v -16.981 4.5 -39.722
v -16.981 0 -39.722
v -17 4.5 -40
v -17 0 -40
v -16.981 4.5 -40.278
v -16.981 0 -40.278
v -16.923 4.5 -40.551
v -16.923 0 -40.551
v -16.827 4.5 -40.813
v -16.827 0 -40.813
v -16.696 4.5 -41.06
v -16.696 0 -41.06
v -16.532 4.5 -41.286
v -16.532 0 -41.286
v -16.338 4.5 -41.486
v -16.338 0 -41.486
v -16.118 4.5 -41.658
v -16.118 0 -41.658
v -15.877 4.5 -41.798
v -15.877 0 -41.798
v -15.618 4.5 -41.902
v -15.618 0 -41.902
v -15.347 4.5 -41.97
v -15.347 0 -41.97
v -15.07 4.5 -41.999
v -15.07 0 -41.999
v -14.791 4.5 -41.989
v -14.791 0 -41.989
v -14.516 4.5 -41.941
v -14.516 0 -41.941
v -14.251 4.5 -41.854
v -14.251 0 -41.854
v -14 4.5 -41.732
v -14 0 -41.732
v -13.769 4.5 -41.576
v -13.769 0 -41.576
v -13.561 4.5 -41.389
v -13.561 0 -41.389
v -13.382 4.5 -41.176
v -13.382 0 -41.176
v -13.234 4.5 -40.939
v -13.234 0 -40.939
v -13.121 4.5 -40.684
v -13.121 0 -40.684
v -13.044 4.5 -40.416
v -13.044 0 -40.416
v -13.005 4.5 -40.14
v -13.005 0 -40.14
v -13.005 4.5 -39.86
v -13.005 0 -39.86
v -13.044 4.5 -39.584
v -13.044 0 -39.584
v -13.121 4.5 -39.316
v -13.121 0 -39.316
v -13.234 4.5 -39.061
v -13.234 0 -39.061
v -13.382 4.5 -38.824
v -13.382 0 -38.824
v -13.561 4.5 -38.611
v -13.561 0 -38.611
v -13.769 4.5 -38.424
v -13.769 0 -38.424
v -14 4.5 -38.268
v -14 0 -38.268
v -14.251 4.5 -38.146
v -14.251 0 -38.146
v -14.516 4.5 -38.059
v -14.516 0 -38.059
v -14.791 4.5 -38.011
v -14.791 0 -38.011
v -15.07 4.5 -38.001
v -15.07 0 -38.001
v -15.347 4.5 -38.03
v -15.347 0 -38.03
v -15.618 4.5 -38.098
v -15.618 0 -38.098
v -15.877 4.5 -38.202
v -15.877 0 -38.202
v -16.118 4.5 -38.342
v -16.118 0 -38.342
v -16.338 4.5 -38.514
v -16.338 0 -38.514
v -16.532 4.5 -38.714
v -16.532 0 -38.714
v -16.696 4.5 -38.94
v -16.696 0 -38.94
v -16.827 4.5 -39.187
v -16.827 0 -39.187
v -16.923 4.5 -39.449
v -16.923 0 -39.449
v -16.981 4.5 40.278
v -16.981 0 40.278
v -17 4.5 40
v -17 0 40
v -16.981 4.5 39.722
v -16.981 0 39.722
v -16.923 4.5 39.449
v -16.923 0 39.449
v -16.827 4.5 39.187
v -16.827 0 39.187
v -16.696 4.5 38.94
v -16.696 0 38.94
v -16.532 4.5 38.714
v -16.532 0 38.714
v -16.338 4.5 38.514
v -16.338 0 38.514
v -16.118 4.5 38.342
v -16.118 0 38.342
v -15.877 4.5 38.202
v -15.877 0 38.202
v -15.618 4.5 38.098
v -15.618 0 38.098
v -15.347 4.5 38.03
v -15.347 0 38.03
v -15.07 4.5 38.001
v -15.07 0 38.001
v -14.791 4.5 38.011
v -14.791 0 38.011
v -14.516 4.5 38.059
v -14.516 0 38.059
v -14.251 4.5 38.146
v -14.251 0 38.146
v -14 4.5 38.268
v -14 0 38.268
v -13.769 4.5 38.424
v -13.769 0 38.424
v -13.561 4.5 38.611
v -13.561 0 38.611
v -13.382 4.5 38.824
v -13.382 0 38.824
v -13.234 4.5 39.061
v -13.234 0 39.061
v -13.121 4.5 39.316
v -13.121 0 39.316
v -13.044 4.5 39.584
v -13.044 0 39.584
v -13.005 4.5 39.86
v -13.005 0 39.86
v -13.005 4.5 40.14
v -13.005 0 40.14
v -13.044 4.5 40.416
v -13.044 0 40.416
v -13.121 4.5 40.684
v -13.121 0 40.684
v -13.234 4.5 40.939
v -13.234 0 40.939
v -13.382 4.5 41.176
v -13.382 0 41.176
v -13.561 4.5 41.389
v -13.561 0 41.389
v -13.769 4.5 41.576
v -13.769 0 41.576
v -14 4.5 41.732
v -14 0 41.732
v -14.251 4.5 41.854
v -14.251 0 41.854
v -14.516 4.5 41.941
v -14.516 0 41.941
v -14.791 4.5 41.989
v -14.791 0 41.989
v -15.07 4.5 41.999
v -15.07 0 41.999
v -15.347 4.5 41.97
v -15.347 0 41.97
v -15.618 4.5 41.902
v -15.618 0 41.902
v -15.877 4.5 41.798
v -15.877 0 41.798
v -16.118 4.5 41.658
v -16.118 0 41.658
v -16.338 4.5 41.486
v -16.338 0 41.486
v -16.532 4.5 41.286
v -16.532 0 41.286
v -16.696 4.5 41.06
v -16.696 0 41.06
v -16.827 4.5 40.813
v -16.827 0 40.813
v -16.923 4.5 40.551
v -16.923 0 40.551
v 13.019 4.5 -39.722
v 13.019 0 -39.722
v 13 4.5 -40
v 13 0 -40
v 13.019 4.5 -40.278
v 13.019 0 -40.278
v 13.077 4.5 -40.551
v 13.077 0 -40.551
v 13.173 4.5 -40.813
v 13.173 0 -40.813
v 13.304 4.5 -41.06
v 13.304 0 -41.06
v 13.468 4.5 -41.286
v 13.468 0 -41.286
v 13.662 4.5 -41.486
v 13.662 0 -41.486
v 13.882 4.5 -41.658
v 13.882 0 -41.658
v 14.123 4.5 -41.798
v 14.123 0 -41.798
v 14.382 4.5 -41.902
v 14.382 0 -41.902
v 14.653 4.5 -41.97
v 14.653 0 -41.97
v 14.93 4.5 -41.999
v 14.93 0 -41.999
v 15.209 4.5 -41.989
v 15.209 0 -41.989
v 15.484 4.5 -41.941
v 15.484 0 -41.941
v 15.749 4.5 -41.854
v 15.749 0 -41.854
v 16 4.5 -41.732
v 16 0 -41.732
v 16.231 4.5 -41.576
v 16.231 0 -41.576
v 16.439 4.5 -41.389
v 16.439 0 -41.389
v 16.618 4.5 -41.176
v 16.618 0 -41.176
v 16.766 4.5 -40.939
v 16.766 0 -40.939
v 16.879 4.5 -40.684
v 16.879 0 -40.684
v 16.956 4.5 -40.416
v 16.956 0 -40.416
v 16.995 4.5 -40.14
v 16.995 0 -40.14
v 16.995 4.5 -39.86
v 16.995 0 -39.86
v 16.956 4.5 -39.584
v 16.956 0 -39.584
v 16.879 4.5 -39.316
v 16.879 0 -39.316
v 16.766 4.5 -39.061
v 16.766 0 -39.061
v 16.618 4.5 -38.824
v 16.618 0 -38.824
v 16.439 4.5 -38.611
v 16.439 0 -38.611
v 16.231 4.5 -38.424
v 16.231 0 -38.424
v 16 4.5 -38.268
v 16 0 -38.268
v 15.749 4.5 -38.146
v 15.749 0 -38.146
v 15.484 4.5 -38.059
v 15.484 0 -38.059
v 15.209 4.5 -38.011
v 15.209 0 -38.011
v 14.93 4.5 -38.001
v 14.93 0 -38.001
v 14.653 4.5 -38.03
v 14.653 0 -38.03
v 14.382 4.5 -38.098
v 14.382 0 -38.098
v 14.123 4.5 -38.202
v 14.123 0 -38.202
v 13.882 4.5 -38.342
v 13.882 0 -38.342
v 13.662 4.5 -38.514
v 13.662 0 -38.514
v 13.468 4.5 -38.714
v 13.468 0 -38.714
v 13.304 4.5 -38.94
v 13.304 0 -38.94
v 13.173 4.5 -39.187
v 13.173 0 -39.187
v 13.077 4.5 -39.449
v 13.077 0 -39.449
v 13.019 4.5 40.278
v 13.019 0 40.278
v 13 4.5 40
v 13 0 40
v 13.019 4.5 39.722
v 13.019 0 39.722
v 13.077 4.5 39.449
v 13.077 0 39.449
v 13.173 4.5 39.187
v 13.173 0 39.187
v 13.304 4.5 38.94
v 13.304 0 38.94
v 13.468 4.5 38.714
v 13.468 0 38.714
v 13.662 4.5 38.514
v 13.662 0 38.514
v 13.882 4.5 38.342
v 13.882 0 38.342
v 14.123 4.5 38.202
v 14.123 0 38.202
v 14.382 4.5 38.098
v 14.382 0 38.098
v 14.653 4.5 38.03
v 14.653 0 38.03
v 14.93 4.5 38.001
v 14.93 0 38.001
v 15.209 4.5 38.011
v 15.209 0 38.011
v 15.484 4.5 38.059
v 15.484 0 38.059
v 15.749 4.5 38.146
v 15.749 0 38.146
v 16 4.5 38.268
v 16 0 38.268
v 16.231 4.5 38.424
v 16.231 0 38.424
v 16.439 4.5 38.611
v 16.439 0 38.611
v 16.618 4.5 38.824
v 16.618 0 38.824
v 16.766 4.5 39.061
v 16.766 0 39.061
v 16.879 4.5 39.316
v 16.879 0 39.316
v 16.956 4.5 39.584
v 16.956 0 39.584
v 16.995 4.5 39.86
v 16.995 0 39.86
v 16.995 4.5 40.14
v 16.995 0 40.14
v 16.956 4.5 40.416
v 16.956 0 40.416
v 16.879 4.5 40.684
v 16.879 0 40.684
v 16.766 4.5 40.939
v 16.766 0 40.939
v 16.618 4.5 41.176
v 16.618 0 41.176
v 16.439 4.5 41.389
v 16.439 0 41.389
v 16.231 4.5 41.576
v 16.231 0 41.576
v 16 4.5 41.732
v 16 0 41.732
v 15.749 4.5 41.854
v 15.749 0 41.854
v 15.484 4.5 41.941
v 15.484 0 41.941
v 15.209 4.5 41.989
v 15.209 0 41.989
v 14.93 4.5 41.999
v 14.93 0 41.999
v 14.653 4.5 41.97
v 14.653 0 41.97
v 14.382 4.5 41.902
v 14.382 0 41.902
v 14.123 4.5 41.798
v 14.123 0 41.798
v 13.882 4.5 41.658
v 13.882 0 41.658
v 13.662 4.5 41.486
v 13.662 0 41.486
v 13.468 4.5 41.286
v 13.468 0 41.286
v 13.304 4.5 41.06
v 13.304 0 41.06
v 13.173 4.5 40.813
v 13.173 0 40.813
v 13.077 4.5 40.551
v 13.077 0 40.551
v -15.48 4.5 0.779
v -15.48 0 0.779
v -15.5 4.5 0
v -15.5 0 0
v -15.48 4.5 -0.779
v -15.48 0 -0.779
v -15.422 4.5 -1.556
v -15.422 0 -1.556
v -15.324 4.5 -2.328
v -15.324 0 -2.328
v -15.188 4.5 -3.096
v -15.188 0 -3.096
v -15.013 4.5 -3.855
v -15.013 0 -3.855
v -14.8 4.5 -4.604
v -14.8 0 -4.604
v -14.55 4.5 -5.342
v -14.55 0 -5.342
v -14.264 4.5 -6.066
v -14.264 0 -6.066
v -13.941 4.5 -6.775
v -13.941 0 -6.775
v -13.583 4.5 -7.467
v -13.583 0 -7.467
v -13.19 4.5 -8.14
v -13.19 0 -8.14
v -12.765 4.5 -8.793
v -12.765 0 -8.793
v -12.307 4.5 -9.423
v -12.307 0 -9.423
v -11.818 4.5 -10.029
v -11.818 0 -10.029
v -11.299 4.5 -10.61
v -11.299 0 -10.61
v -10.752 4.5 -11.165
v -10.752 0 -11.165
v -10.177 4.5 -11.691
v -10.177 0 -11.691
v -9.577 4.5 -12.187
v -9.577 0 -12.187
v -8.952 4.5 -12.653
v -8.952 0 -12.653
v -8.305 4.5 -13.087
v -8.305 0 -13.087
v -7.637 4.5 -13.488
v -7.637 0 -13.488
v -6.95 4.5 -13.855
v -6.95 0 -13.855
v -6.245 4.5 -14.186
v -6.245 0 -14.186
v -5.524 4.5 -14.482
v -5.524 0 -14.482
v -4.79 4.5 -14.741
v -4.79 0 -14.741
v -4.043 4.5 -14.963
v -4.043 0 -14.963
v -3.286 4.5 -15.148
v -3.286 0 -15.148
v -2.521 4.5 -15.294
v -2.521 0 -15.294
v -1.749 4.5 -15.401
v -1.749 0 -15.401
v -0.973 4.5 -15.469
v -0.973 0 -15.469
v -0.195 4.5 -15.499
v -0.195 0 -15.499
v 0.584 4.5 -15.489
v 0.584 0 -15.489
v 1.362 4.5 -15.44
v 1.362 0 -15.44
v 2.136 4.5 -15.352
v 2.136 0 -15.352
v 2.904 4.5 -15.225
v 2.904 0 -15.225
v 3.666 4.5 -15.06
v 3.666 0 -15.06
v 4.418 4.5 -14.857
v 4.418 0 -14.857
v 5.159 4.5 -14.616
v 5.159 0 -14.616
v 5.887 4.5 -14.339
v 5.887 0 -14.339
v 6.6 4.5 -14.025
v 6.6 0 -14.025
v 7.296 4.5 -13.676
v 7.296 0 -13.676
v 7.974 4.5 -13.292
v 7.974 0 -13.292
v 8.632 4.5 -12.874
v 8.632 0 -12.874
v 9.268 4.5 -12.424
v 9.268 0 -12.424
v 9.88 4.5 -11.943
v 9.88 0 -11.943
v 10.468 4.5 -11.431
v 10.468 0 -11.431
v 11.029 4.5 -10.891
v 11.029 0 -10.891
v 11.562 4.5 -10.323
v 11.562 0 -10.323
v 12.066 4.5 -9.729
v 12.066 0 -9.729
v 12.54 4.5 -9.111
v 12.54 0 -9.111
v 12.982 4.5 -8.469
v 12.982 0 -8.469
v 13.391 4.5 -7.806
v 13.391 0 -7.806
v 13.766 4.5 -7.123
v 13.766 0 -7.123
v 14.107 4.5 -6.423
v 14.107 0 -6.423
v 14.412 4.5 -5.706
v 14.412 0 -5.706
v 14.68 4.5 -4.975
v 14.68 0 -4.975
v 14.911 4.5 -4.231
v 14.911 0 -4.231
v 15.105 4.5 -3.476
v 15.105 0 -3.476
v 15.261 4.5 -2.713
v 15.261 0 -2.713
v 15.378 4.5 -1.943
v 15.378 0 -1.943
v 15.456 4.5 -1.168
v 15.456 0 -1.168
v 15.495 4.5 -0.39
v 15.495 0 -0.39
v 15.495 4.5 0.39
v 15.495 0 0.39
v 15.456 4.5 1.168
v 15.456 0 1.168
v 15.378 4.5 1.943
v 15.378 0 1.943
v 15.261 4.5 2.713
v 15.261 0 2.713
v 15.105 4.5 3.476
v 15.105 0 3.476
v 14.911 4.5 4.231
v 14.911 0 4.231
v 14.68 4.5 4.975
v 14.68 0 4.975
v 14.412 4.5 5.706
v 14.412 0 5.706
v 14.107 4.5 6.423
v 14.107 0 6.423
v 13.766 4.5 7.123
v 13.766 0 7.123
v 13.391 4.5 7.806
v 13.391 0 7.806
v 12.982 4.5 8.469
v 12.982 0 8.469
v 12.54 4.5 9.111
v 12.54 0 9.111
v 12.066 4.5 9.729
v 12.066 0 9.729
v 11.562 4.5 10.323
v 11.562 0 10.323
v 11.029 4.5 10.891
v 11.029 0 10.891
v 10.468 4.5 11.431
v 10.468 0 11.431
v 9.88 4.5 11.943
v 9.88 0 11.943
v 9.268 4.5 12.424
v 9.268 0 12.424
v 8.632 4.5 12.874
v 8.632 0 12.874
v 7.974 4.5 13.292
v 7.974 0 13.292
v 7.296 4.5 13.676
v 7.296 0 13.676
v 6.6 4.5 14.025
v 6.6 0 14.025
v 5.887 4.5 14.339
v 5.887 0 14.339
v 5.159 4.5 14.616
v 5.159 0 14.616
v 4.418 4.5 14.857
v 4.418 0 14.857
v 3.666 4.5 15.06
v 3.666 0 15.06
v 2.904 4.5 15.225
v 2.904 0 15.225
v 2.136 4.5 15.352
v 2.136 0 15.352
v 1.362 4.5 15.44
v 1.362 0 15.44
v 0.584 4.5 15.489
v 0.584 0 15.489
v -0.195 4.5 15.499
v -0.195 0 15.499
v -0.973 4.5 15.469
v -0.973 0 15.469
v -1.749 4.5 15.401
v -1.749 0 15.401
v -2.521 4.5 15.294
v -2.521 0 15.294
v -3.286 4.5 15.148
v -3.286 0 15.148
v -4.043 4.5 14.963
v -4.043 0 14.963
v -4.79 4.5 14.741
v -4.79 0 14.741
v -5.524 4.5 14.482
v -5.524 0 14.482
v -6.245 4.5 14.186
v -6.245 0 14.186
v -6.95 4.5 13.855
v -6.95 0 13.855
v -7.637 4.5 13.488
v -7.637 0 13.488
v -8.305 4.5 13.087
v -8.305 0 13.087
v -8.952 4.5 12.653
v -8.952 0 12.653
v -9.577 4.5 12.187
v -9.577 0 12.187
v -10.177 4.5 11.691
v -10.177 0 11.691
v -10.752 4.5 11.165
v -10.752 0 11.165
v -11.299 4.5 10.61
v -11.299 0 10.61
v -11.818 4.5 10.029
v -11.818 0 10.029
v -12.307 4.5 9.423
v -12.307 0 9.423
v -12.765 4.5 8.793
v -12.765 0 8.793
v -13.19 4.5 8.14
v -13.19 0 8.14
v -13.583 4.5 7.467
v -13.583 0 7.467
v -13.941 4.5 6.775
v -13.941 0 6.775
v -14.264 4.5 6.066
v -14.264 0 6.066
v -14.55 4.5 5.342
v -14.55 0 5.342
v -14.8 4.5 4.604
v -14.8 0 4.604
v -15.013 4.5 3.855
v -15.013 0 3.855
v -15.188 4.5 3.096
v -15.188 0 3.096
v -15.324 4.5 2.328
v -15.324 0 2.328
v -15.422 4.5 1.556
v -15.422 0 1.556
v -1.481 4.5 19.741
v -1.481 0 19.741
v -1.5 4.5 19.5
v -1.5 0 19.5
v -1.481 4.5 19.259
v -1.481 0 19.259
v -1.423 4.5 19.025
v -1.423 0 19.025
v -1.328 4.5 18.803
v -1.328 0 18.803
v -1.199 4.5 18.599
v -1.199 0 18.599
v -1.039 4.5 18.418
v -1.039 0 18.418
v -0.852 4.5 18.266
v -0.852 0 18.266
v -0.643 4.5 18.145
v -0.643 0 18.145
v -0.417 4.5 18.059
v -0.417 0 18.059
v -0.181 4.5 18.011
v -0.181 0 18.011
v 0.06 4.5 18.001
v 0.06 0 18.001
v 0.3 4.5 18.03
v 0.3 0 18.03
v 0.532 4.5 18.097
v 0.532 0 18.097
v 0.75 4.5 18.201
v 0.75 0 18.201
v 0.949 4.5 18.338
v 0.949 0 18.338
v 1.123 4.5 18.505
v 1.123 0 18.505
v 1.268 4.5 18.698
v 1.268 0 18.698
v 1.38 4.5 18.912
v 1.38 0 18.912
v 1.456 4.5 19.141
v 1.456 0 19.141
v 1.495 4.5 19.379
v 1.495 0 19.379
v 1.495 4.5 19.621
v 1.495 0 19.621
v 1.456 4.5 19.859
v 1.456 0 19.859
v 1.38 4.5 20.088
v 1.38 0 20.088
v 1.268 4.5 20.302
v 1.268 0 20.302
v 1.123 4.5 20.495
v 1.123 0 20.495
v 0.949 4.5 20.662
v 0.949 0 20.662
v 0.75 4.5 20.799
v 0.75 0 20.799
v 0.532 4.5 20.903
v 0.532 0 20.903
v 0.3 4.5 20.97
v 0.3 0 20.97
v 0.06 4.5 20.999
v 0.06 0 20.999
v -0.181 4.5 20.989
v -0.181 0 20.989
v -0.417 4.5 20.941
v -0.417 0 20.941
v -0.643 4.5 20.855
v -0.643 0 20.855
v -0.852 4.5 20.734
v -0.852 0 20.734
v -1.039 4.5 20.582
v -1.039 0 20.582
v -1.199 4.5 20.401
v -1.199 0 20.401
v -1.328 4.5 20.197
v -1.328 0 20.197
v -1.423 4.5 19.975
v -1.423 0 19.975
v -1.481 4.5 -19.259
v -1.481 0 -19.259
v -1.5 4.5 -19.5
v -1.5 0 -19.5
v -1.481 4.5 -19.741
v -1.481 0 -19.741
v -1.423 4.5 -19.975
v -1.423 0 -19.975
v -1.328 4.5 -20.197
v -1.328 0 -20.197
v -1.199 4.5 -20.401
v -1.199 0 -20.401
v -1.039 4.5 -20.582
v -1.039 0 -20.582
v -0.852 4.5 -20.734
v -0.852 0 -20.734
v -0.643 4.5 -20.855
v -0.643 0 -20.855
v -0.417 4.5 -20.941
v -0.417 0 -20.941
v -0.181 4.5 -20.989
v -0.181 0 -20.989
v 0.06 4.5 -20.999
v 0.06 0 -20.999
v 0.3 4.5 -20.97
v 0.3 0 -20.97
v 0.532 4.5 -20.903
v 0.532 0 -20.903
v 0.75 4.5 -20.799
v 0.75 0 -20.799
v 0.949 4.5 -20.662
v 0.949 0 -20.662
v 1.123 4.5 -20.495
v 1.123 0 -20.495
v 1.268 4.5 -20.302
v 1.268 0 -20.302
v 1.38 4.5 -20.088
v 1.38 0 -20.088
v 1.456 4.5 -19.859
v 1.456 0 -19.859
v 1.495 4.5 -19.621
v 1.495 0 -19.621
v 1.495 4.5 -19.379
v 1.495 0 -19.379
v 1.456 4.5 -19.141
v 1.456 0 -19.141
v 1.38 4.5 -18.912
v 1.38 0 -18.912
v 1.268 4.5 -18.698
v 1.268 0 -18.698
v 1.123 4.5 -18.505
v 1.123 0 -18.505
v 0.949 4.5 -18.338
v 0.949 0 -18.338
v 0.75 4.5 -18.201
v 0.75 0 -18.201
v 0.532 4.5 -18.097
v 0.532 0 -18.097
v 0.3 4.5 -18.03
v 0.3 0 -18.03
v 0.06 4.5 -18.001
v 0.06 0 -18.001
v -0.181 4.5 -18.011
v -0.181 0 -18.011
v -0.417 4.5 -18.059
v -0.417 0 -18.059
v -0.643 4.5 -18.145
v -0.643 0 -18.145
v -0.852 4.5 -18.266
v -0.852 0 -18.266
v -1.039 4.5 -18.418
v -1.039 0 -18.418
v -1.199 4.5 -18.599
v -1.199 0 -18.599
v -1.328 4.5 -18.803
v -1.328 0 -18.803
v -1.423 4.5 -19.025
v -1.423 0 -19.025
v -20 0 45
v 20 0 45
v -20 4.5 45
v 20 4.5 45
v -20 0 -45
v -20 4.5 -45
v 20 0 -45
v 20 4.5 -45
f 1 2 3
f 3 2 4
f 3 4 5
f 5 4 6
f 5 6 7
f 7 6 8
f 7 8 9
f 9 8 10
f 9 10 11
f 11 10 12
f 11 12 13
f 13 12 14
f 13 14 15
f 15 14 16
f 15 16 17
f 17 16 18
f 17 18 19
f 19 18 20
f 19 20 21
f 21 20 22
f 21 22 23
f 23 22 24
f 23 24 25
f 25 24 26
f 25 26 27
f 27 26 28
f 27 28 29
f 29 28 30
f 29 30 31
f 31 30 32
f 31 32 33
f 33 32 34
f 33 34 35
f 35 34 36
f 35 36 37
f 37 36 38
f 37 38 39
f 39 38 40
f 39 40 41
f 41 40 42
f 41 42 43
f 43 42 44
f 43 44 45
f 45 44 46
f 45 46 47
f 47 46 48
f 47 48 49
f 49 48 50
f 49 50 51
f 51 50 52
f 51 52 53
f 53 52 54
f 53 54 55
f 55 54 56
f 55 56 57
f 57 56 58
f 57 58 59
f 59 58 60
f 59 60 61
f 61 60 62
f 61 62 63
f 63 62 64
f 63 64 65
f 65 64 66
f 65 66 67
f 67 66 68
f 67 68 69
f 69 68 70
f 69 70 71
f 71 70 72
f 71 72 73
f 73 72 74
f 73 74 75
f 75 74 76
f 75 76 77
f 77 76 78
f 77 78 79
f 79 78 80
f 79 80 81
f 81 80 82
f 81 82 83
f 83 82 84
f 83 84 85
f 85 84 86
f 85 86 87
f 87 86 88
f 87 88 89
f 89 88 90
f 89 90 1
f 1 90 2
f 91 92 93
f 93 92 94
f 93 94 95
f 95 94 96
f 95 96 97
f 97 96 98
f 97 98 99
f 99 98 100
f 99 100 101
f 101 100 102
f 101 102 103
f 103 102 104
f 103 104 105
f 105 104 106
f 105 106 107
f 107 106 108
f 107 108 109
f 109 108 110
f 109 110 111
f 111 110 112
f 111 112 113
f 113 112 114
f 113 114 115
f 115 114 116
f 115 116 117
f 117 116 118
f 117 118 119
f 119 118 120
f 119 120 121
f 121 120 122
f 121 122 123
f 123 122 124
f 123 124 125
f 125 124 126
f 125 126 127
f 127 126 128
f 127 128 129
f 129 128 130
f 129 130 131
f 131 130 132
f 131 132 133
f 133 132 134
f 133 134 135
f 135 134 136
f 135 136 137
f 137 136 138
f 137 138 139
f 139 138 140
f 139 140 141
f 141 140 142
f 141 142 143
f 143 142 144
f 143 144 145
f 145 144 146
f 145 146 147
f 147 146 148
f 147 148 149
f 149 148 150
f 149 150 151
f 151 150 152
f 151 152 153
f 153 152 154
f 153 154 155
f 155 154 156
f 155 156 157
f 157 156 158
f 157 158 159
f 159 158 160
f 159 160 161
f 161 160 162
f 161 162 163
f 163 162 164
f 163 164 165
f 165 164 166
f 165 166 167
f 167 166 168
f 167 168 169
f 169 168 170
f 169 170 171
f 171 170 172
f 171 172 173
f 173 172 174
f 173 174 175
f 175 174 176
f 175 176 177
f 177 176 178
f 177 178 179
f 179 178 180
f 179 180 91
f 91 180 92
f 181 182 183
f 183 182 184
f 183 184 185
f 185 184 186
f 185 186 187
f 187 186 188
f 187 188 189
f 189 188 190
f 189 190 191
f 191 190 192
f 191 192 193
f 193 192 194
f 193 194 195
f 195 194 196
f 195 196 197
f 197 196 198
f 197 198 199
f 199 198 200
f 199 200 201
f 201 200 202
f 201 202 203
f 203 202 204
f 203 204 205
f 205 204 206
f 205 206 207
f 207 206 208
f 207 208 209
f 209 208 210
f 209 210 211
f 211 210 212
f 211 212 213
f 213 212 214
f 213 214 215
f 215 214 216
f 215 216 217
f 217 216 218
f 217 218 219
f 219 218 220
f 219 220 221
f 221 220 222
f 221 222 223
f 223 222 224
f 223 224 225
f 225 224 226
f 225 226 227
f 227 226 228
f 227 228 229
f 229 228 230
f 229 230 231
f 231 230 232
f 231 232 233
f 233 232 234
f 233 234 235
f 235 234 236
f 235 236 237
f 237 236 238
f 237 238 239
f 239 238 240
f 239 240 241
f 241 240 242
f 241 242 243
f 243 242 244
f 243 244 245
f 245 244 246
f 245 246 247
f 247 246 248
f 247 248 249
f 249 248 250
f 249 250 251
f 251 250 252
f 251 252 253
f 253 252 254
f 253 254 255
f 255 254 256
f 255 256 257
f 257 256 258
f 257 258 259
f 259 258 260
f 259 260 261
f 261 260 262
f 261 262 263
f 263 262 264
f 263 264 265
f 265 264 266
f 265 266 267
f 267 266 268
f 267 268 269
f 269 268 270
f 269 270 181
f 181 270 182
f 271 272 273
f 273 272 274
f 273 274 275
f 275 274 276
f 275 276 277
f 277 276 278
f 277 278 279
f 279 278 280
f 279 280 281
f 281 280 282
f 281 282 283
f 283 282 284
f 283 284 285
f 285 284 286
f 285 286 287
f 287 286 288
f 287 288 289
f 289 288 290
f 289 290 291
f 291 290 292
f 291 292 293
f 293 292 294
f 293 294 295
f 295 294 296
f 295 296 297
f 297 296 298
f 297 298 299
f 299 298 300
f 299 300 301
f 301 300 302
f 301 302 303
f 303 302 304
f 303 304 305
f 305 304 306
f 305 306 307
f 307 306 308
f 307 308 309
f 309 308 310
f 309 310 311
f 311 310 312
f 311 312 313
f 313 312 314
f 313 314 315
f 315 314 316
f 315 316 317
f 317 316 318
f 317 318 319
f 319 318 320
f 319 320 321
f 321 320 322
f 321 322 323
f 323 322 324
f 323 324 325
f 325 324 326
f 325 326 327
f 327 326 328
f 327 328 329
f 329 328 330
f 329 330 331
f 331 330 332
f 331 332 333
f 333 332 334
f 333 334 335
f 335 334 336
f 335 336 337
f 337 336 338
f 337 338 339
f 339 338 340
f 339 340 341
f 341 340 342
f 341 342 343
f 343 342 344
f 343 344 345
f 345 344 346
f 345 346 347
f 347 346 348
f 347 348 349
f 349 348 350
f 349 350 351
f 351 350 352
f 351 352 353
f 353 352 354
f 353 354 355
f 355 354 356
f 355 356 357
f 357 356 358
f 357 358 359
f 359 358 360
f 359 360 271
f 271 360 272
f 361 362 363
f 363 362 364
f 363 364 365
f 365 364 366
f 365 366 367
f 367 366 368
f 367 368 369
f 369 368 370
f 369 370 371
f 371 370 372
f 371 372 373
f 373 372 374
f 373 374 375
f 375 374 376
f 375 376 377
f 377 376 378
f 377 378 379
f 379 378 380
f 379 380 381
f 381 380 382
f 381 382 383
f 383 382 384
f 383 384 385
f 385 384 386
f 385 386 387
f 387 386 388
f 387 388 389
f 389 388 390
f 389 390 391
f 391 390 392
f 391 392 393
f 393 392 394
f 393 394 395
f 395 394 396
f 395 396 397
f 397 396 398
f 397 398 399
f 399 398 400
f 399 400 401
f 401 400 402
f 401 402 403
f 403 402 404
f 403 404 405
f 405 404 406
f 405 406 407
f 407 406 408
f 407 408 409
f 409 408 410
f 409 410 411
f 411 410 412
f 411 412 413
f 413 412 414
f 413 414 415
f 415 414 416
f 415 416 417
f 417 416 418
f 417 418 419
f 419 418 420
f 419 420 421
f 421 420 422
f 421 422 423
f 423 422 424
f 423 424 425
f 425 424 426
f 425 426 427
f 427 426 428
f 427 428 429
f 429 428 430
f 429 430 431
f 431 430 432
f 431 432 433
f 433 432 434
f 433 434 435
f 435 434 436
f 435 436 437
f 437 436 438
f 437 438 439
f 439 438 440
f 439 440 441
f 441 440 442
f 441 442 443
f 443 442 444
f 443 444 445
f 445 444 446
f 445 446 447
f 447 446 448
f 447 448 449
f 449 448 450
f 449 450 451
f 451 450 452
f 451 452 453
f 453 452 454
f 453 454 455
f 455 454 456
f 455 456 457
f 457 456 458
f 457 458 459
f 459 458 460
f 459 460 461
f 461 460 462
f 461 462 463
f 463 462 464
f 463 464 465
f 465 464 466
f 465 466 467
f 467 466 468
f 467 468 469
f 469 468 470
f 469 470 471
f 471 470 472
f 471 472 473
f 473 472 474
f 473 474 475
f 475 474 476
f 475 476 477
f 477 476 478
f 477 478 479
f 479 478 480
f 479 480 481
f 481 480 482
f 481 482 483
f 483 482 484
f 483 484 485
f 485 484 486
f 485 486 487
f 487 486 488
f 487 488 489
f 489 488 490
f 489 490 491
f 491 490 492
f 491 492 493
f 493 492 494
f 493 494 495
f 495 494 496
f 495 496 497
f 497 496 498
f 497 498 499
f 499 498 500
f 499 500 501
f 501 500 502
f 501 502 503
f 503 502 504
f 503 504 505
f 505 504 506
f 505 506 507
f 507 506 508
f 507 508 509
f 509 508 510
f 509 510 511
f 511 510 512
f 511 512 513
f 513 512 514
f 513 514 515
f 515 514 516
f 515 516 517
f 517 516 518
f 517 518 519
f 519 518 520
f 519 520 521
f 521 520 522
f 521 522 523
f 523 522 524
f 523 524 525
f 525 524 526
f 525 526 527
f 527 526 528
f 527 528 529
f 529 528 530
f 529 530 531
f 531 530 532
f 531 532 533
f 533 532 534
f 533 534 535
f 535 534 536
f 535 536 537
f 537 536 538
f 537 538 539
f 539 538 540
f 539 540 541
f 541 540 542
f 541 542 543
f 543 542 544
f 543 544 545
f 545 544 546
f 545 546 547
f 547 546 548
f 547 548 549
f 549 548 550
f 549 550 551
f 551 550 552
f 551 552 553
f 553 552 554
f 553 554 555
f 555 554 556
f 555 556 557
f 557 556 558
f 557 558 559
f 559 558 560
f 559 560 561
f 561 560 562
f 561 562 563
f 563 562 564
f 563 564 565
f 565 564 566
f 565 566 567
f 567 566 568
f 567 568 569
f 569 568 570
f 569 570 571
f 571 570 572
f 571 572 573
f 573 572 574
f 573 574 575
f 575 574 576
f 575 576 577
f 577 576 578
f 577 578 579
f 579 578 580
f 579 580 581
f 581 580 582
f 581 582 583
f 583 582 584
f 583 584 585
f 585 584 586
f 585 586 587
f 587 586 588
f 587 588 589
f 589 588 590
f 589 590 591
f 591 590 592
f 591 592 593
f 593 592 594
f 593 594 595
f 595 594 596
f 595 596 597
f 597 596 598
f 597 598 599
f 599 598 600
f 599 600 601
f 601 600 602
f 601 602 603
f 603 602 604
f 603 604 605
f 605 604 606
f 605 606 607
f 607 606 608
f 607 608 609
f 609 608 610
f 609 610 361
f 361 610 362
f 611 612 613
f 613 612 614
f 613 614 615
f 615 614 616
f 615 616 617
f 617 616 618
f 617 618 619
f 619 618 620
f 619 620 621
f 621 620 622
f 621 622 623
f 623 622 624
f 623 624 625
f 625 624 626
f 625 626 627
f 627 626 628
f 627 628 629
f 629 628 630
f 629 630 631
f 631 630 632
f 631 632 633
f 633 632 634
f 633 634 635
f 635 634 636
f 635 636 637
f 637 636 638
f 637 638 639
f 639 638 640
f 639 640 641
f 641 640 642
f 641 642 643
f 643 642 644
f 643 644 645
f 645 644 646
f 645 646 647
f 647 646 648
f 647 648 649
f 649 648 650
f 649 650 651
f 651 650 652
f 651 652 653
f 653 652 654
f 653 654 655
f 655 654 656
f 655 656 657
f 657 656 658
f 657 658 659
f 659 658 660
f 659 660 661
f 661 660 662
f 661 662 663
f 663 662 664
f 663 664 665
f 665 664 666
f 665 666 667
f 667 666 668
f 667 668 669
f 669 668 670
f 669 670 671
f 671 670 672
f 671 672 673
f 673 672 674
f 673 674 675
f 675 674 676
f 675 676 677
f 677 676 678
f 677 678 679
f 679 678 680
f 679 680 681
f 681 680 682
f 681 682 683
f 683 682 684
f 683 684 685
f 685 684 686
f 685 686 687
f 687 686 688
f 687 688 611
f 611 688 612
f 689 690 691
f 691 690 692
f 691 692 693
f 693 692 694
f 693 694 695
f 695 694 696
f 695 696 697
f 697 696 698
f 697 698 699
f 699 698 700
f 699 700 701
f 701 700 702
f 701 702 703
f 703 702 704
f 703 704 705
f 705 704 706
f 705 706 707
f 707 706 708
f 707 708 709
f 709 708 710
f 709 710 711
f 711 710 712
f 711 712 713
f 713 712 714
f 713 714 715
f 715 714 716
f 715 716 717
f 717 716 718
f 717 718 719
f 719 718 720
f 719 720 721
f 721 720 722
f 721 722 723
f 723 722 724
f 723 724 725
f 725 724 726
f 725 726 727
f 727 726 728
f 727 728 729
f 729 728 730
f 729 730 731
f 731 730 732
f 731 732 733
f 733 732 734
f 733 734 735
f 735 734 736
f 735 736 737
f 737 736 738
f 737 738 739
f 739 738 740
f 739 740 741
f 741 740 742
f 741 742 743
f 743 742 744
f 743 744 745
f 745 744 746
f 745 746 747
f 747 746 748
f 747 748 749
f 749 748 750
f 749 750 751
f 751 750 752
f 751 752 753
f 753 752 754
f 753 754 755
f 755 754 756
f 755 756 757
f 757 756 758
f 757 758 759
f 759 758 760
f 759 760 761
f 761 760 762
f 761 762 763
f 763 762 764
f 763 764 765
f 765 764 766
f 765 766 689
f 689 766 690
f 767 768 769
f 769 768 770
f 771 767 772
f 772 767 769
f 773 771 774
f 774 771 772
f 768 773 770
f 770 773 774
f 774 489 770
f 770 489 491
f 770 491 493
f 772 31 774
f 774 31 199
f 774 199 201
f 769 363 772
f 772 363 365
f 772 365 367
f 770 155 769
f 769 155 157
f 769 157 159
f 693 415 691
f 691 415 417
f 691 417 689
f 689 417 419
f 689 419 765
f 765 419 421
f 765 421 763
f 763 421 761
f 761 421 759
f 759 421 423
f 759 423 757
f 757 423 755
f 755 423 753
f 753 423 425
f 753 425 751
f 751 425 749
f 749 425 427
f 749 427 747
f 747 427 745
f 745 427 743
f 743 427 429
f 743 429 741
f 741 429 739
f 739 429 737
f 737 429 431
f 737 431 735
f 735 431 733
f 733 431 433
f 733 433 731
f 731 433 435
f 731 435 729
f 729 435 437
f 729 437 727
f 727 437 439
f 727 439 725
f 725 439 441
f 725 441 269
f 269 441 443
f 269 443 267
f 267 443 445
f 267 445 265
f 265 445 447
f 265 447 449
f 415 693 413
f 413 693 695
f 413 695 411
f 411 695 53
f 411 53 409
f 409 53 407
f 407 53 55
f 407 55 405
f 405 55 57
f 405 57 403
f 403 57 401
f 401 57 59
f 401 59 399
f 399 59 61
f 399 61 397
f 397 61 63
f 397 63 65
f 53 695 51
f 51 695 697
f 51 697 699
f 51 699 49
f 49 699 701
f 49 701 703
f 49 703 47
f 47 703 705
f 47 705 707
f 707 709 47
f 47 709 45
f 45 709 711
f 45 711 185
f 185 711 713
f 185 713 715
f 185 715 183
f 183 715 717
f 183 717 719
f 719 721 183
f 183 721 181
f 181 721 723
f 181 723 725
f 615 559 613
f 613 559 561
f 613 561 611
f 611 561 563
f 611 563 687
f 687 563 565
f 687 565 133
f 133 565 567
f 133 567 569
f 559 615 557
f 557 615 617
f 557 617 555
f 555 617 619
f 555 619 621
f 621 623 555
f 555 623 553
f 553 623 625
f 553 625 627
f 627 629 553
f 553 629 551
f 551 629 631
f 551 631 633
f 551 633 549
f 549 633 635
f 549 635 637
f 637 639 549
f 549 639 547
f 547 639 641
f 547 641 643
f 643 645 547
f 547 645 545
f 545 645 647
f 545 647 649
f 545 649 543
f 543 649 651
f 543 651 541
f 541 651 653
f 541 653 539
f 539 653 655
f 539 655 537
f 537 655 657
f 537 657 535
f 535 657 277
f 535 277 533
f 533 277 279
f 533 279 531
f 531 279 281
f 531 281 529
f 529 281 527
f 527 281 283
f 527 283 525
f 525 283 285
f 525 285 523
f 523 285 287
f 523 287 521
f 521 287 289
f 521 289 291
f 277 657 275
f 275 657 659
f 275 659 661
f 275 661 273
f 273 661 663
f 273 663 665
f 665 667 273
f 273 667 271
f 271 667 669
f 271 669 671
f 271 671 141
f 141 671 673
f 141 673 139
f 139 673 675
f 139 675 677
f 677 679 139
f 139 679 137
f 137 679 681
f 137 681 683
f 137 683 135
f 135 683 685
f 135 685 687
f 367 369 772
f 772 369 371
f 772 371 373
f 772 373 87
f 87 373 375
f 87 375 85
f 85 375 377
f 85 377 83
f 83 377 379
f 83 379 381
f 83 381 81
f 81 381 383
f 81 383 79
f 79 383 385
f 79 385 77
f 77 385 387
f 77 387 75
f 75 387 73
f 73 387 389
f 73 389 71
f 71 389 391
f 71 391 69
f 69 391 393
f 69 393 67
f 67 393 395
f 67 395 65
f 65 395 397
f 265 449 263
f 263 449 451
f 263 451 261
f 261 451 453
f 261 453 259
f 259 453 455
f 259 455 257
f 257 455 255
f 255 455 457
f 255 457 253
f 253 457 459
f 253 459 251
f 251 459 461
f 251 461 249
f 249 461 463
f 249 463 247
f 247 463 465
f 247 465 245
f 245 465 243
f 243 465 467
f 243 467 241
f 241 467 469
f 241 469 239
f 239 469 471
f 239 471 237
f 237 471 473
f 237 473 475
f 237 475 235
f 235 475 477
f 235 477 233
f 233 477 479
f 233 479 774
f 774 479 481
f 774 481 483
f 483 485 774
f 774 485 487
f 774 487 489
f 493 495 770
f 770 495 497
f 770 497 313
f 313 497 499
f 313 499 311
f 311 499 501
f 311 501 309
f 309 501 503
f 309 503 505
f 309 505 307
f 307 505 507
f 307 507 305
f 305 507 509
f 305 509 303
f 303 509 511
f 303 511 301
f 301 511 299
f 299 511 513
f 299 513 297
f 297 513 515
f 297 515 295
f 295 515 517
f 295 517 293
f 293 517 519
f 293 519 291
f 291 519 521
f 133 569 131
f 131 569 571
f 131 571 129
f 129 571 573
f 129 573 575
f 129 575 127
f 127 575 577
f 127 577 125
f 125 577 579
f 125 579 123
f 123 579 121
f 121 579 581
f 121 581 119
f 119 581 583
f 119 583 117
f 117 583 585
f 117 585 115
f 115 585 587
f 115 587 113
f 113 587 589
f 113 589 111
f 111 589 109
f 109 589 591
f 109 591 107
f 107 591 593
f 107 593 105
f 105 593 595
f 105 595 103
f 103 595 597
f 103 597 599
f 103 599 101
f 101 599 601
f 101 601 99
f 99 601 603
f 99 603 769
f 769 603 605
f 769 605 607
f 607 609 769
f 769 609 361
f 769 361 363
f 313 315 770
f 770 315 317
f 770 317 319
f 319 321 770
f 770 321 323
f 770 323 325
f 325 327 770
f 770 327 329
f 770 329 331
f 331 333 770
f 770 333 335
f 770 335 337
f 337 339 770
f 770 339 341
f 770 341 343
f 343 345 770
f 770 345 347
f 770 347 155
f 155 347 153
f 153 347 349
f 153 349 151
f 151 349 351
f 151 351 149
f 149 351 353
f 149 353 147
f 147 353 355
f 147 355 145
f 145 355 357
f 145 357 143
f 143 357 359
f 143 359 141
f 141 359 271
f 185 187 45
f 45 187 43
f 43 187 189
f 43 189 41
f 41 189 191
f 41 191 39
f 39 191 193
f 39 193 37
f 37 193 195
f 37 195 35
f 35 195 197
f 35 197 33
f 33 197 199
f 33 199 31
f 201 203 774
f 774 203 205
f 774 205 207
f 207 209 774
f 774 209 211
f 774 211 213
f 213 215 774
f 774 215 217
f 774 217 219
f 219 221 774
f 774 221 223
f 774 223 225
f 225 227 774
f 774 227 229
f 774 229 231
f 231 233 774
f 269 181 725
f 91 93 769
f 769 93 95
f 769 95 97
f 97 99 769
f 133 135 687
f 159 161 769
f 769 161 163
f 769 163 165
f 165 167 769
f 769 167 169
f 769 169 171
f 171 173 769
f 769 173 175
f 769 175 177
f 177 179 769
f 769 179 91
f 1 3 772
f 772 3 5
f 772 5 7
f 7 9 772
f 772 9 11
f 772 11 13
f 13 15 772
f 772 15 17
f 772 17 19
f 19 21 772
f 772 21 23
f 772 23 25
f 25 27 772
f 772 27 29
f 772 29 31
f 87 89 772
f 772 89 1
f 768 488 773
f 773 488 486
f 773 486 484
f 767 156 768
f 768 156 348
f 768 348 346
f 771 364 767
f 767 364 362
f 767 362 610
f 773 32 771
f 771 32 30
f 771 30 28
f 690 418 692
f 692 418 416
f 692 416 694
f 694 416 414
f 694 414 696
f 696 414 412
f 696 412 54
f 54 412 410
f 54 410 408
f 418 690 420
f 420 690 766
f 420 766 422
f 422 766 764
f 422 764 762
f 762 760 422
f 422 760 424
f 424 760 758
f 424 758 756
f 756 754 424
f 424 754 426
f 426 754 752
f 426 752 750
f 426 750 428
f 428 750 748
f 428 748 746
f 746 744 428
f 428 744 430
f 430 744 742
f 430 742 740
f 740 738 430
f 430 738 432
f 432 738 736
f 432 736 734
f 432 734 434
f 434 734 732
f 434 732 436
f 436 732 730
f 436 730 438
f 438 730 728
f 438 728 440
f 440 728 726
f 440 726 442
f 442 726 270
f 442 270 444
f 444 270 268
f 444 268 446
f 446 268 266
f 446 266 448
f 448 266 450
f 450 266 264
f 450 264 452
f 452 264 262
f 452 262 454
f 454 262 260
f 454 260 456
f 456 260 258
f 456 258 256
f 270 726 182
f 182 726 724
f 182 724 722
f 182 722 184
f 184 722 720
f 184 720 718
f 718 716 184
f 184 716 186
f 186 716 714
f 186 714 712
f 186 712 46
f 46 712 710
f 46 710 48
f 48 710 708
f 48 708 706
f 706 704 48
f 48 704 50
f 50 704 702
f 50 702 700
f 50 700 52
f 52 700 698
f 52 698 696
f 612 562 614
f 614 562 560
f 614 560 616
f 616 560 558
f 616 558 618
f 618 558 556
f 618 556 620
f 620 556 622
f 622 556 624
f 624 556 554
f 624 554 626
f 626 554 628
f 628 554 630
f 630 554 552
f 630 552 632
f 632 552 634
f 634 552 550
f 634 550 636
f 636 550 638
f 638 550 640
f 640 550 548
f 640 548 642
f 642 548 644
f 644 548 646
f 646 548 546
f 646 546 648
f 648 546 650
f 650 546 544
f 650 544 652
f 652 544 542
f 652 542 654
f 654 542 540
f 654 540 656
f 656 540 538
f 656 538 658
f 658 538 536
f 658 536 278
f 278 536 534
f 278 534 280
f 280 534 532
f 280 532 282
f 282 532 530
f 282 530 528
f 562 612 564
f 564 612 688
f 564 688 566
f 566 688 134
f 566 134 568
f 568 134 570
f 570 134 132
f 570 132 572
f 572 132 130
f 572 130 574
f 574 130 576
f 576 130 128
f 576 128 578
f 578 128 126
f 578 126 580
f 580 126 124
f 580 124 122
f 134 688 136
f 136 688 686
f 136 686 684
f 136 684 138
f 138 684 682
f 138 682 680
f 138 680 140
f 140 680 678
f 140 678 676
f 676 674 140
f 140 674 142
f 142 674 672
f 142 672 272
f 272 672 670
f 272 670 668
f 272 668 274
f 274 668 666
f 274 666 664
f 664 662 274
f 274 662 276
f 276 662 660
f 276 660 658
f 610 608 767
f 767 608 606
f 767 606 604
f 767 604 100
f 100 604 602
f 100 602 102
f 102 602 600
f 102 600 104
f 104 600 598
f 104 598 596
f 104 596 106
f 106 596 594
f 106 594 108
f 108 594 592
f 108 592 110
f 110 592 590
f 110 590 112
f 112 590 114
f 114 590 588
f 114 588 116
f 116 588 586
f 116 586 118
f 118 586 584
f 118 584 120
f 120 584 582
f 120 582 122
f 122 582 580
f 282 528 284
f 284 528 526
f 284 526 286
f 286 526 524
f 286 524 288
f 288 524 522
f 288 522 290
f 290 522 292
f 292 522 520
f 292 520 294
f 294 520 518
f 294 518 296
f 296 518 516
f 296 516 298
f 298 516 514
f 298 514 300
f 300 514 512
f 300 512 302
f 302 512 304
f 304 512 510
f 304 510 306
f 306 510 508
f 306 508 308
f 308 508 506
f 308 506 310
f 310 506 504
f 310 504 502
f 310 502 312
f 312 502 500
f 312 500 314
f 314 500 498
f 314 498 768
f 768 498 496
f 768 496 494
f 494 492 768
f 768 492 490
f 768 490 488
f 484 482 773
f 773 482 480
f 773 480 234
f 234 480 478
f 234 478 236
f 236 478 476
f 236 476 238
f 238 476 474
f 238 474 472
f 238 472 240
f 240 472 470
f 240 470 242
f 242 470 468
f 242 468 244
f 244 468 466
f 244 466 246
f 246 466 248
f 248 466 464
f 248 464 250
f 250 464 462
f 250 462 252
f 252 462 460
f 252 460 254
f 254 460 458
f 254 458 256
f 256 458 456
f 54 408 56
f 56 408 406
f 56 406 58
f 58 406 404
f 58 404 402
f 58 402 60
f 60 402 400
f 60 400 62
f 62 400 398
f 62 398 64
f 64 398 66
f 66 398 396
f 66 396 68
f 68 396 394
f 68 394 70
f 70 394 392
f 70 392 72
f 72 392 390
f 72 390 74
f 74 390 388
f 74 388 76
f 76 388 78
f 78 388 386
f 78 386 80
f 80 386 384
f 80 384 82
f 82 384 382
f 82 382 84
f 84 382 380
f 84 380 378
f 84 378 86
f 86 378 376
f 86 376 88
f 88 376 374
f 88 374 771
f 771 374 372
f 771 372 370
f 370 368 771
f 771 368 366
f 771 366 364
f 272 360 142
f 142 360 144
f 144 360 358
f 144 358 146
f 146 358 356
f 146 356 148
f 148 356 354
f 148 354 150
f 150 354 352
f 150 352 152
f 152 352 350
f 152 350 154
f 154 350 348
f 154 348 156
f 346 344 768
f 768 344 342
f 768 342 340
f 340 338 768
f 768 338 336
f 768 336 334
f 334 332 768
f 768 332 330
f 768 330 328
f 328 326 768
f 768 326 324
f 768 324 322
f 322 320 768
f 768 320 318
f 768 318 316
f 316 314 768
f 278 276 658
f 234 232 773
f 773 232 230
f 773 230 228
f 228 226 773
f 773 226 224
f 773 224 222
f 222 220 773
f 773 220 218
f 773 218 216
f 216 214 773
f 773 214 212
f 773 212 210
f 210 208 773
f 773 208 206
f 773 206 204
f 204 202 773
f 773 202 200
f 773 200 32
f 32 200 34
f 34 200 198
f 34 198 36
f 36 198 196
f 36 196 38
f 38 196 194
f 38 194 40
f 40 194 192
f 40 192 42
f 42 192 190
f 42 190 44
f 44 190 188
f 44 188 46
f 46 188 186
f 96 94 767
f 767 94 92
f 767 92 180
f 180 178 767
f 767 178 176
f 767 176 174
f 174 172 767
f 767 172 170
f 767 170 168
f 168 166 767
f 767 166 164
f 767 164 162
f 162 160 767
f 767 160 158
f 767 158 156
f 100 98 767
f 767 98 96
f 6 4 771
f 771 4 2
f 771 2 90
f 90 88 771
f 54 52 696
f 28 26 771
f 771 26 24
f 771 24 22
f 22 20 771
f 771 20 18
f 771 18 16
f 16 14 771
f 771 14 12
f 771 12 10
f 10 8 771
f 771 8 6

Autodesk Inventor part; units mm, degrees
ref_plane "YZ Plane" through (0, 0, 0) normal (1, 0, 0) x (0, 1, 0)
ref_plane "XZ Plane" through (0, 0, 0) normal (0, 1, 0) x (-1, 0, 0)
ref_plane "XY Plane" through (0, 0, 0) normal (0, 0, 1) x (1, 0, 0)
sketch "Sketch1" plane through (0, 0, 0) normal (0, 1, 0) x (-1, 0, 0)
  line L0 (20, 45) -> (-20, 45)
  line L1 (-20, 45) -> (-20, -45)
  line L2 (-20, -45) -> (20, -45)
  line L3 (20, -45) -> (20, 45)
  line L4 (20, 45) -> (-20, -45) construction
  line L5 (-20, 45) -> (20, -45) construction
  circle A0 centre (0, 0) radius 15.5
  line L6 (0, 0) -> (0, -19.5)
  line L7 (0, -19.5) -> (0, 19.5)
  circle A1 centre (0, 19.5) radius 1.5
  circle A2 centre (0, -19.5) radius 1.5
  line L8 (15, 40) -> (-15, 40)
  line L9 (-15, 40) -> (-15, -40)
  line L10 (-15, -40) -> (15, -40)
  line L11 (15, -40) -> (15, 40)
  line L12 (15, 40) -> (-15, -40) construction
  line L13 (-15, 40) -> (15, -40) construction
  circle A3 centre (15, 40) radius 2
  circle A4 centre (15, -40) radius 2
  circle A5 centre (-15, -40) radius 2
  circle A6 centre (-15, 40) radius 2
  dimension "d0" = 40
  dimension "d1" = 90
  dimension "d2" = 31
  dimension "d3" = 19.5
  dimension "d4" = 39
  dimension "d5" = 3
  dimension "d6" = 3
  dimension "d9" = 30
  dimension "d10" = 80
  dimension "d11" = 4
  dimension "d12" = 4
  dimension "d13" = 4
  dimension "d14" = 4
extrude "Extrusion1" add sketch "Sketch1" along normal blind 4.5 contours L3 L2 L1 L0 | A0 L9 A6 L8 A3 L11 | L11 A4 L10 A5 L9 A0
properties part number "caster_holder"
